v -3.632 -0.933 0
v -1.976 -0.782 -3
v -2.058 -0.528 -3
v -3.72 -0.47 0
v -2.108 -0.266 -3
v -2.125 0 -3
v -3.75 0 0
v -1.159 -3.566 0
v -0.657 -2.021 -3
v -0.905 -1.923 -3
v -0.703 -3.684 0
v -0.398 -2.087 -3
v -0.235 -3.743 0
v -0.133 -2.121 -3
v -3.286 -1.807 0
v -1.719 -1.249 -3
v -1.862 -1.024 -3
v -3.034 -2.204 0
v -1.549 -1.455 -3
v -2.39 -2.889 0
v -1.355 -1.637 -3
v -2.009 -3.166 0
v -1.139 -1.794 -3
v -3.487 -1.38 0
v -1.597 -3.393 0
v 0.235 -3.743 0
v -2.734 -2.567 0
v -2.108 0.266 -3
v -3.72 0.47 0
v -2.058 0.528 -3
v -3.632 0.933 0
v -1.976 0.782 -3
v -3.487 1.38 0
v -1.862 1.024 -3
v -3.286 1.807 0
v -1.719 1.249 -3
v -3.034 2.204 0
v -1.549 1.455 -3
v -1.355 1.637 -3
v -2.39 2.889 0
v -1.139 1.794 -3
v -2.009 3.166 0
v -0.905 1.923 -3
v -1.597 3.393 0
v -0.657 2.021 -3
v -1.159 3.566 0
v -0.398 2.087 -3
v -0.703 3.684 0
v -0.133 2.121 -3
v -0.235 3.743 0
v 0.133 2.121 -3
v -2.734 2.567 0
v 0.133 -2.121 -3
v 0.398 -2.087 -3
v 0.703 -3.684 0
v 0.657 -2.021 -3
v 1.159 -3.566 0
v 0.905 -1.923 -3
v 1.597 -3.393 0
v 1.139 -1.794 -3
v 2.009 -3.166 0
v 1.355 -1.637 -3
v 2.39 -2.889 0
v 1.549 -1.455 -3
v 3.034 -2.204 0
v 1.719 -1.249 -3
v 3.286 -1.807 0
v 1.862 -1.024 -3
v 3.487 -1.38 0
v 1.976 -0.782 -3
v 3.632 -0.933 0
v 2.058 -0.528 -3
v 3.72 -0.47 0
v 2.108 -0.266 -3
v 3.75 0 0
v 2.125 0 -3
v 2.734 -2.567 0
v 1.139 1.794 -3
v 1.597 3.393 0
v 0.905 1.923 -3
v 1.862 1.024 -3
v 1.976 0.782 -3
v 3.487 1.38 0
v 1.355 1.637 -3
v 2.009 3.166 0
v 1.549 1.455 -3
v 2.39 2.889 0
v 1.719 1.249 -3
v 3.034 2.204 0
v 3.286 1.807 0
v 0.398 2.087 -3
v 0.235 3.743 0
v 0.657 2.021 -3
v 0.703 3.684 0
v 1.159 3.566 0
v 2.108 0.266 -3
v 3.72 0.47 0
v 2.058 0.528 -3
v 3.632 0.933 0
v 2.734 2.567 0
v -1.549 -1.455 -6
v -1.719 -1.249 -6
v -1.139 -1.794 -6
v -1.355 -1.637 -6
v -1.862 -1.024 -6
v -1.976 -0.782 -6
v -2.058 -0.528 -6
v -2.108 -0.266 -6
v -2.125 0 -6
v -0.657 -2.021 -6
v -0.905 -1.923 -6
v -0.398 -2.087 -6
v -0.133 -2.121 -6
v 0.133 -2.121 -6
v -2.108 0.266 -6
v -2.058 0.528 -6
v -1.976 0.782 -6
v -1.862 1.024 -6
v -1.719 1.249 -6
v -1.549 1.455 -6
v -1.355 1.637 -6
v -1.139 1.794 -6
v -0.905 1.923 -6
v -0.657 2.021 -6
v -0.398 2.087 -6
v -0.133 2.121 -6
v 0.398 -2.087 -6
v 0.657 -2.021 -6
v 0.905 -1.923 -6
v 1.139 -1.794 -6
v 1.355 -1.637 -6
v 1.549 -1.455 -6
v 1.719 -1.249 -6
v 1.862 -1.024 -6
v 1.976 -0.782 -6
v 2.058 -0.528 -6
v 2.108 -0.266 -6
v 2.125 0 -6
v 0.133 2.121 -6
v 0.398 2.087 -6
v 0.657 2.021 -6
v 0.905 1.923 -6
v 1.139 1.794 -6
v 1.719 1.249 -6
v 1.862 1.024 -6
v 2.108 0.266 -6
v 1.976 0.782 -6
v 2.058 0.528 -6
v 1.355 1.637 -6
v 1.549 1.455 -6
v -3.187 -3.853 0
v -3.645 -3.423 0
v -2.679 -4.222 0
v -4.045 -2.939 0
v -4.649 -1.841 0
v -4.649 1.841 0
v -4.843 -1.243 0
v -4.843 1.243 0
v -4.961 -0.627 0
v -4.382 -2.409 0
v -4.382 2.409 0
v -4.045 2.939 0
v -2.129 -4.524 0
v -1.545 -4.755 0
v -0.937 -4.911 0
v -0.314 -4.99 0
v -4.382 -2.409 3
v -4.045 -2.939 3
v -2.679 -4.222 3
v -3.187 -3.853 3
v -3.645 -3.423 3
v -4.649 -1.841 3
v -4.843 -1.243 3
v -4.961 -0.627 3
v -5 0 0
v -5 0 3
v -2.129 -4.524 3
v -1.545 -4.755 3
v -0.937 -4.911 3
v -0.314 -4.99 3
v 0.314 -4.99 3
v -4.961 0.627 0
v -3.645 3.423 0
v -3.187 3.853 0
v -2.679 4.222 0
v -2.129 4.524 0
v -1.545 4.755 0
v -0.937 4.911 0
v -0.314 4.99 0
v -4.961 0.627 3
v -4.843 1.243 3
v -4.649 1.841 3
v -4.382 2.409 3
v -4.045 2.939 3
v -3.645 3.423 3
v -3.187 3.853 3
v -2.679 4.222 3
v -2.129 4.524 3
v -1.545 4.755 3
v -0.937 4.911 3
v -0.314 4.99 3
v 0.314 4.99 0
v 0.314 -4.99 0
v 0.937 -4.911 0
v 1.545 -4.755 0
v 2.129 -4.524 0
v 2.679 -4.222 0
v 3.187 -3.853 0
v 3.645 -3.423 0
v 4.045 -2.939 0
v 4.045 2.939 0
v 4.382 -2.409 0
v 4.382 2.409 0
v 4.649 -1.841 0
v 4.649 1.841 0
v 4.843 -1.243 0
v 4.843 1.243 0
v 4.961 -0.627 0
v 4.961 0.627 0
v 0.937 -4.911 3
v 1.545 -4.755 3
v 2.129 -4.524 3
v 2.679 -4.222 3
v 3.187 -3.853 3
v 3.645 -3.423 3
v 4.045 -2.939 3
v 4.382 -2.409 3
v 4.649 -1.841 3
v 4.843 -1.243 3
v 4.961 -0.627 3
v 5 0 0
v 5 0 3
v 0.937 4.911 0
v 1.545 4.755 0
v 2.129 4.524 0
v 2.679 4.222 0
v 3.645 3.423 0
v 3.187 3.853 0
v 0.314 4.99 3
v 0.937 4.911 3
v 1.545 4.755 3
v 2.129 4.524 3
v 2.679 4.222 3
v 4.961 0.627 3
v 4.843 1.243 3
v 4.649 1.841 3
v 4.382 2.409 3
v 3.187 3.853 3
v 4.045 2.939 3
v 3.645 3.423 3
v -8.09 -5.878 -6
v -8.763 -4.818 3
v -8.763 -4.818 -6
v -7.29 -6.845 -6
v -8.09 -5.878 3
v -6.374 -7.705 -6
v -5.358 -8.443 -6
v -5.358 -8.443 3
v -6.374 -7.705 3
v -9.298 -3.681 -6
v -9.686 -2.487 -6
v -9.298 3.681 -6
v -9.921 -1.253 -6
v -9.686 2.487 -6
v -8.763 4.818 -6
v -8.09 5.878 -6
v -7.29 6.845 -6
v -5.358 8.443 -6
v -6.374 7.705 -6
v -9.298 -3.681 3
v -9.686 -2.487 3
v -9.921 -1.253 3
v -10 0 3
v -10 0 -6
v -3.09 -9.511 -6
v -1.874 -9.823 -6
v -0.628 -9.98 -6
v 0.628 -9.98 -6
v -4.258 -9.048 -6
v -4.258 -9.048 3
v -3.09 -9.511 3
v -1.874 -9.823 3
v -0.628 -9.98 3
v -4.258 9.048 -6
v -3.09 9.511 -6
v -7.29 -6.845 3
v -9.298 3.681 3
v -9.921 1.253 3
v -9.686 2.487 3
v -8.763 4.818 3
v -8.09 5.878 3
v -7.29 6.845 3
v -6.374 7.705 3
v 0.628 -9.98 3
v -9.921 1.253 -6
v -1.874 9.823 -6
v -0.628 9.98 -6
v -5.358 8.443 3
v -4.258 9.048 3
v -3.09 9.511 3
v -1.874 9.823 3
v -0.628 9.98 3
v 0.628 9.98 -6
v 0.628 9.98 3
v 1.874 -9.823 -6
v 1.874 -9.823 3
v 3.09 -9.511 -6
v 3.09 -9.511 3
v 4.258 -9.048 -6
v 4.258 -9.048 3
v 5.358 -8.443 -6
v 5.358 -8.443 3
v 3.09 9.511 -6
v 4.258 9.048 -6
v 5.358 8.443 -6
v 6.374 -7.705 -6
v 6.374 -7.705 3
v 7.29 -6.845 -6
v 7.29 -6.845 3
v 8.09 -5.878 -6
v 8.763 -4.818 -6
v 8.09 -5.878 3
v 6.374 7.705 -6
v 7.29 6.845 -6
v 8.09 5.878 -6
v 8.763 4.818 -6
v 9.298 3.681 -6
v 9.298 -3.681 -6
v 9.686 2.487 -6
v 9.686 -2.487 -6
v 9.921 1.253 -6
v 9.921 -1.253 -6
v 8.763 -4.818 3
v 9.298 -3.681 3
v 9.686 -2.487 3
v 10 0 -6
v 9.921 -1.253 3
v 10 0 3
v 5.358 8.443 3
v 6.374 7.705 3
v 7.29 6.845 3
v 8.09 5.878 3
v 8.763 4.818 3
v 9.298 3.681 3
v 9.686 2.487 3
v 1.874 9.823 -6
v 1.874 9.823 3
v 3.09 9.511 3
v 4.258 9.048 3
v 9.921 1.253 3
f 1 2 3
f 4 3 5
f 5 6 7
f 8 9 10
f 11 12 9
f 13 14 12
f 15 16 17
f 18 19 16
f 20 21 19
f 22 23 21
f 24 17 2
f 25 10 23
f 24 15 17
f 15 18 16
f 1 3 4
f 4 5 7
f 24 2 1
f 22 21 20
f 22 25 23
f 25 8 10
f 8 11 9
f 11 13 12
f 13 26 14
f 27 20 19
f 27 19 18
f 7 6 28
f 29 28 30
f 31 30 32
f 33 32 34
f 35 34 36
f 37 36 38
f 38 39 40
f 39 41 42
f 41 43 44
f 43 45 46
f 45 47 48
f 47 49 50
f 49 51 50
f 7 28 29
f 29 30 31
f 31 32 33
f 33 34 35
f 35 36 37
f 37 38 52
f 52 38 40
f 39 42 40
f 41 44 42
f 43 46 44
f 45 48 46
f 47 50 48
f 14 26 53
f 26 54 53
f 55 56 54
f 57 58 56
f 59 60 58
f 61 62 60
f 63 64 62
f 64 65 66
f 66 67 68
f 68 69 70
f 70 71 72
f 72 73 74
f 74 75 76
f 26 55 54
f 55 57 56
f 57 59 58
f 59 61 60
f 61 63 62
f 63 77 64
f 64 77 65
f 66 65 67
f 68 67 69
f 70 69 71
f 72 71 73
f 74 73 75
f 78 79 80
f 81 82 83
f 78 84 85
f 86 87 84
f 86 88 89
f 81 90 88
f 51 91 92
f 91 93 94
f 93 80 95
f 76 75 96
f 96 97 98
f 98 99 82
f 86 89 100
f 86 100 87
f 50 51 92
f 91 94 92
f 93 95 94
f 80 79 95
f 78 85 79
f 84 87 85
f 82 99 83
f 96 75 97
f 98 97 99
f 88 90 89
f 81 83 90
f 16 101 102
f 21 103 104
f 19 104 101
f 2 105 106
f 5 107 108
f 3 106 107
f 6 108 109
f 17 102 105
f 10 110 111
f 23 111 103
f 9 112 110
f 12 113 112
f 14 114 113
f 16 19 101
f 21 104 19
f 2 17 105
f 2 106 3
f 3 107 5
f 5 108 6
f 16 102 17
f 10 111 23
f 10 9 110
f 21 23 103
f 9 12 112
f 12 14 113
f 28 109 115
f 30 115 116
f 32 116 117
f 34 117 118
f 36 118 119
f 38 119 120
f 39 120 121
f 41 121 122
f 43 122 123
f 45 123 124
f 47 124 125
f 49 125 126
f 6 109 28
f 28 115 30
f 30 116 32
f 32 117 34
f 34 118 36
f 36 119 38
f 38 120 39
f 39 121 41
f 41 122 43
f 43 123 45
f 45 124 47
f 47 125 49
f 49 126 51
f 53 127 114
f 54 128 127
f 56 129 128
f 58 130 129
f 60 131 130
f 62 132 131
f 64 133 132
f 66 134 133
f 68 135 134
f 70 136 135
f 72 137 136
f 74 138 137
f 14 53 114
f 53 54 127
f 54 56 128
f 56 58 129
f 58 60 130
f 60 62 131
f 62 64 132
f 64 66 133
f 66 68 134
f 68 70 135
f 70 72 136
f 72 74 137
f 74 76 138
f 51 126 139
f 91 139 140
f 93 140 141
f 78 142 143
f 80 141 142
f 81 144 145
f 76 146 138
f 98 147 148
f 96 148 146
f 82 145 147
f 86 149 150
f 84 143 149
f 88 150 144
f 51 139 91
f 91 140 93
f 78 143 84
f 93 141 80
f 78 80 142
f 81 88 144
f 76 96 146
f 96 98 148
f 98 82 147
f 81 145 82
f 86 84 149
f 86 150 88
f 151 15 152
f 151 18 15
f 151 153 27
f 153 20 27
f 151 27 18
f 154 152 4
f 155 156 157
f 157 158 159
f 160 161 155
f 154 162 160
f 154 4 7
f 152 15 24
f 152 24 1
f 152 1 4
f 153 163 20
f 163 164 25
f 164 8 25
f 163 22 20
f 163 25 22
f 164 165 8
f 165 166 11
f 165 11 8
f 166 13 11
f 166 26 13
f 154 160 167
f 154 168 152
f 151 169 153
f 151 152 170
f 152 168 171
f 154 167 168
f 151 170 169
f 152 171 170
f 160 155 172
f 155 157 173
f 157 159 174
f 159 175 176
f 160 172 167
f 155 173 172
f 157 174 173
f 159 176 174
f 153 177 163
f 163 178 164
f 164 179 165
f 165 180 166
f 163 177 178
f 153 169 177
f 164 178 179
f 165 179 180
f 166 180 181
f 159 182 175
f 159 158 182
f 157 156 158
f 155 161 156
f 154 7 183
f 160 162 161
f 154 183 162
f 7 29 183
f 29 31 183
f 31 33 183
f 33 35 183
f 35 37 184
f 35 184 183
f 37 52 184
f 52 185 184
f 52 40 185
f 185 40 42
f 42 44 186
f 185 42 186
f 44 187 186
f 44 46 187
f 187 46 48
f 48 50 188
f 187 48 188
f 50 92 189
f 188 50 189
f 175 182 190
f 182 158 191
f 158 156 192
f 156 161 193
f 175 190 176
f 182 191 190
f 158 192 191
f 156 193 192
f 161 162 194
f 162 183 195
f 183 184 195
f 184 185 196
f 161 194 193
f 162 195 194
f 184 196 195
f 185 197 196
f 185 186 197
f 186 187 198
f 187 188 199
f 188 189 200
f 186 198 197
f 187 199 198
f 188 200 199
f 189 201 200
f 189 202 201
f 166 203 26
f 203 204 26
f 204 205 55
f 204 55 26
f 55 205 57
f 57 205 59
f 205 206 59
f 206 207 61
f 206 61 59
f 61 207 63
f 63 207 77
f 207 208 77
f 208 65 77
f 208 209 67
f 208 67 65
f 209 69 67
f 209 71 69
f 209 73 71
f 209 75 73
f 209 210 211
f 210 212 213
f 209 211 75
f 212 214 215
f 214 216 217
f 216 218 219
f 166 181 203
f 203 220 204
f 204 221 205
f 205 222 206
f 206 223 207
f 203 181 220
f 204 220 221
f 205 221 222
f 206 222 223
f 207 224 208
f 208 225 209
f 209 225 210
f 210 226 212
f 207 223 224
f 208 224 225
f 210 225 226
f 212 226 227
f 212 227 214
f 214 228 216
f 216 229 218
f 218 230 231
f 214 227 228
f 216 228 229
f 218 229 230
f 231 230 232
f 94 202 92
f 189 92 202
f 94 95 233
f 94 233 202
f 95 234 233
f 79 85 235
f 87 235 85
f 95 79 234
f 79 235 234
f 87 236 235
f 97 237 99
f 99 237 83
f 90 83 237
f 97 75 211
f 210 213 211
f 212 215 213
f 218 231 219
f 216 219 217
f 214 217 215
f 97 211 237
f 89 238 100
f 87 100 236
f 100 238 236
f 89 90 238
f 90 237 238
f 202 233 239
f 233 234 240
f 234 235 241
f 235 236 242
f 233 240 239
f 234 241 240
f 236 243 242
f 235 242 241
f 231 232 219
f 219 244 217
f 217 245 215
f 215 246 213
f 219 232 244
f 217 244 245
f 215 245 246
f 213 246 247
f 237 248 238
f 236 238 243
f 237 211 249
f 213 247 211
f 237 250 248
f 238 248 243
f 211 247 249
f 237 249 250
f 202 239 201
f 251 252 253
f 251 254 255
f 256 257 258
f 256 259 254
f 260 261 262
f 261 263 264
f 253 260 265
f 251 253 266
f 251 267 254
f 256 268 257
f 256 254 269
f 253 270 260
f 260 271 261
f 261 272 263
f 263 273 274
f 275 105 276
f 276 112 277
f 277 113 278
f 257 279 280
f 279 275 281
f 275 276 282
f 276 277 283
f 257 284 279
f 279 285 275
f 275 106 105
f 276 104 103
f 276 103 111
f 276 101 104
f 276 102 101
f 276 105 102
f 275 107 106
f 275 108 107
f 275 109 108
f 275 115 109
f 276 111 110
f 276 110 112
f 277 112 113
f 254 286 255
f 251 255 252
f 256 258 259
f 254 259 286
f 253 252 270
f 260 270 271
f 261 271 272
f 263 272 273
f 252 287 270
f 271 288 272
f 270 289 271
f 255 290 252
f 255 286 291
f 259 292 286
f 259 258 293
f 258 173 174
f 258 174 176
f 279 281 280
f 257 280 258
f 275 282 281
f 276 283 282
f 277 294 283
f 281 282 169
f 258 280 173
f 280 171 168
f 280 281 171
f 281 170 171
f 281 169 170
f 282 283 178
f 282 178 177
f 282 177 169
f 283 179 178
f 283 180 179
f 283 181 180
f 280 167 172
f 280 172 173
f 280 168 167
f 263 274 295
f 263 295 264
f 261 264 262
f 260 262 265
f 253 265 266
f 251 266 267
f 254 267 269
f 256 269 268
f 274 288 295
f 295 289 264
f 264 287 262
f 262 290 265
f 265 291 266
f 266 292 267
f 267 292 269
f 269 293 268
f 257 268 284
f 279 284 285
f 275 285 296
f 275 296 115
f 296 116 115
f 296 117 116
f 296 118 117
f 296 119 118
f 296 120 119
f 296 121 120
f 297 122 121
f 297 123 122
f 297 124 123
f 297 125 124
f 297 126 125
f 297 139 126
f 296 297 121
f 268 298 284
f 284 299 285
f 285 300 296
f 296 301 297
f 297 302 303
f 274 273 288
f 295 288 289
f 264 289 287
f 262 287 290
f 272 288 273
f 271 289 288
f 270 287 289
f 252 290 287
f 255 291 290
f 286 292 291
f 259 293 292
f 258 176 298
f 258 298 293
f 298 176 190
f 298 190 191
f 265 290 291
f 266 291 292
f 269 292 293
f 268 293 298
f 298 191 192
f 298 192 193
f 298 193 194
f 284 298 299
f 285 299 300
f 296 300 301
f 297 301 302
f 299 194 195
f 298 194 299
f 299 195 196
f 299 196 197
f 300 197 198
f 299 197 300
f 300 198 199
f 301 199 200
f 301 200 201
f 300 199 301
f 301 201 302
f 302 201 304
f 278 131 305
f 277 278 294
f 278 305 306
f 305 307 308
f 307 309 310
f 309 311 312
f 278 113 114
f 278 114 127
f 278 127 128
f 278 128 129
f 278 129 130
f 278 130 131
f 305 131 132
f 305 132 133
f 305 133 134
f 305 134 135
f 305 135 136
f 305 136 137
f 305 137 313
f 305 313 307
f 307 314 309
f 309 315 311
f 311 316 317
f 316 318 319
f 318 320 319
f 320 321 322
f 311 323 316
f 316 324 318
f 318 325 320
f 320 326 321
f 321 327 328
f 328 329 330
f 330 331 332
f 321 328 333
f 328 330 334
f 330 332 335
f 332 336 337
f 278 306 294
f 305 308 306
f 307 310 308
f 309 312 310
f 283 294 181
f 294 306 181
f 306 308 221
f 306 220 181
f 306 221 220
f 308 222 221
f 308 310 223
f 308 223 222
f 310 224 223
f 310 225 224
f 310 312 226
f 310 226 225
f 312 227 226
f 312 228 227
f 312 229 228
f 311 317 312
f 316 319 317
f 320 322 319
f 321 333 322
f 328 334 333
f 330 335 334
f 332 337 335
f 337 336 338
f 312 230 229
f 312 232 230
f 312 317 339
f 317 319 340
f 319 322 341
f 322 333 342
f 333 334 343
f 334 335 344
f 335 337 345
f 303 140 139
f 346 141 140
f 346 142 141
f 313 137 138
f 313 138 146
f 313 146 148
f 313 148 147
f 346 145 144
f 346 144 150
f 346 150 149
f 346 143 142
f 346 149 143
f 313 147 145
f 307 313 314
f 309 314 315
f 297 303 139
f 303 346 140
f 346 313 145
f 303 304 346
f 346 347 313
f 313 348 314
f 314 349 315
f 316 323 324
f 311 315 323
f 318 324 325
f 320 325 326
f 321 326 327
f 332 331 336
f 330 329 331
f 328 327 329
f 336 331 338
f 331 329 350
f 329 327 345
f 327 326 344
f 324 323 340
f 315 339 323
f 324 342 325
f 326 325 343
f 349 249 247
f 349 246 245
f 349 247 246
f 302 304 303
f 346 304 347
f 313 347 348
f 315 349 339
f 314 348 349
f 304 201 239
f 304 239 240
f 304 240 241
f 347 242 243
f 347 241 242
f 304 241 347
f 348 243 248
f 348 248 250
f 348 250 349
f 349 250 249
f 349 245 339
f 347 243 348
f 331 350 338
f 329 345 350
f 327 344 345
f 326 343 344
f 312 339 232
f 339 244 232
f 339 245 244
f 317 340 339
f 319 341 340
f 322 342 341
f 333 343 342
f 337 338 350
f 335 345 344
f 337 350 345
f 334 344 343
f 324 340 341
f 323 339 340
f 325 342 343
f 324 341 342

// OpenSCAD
$fn = 50;


difference() {
	union() {
		translate(v = [0, 0, -6.0000000000]) {
			cylinder(h = 9, r = 10.0000000000);
		}
	}
	union() {
		translate(v = [0, 0, 0]) {
			rotate(a = [0, 0, 0]) {
				difference() {
					union() {
						translate(v = [0, 0, -9.0000000000]) {
							cylinder(h = 9, r = 2.0000000000);
						}
						translate(v = [0, 0, -3]) {
							cylinder(h = 3, r1 = 2.1250000000, r2 = 3.7500000000);
						}
						translate(v = [0, 0, -9.0000000000]) {
							cylinder(h = 9, r = 2.1250000000);
						}
						translate(v = [0, 0, -9.0000000000]) {
							cylinder(h = 9, r = 2.0000000000);
						}
					}
					union();
				}
			}
		}
		#cylinder(h = 3, r = 5.0000000000);
	}
}
